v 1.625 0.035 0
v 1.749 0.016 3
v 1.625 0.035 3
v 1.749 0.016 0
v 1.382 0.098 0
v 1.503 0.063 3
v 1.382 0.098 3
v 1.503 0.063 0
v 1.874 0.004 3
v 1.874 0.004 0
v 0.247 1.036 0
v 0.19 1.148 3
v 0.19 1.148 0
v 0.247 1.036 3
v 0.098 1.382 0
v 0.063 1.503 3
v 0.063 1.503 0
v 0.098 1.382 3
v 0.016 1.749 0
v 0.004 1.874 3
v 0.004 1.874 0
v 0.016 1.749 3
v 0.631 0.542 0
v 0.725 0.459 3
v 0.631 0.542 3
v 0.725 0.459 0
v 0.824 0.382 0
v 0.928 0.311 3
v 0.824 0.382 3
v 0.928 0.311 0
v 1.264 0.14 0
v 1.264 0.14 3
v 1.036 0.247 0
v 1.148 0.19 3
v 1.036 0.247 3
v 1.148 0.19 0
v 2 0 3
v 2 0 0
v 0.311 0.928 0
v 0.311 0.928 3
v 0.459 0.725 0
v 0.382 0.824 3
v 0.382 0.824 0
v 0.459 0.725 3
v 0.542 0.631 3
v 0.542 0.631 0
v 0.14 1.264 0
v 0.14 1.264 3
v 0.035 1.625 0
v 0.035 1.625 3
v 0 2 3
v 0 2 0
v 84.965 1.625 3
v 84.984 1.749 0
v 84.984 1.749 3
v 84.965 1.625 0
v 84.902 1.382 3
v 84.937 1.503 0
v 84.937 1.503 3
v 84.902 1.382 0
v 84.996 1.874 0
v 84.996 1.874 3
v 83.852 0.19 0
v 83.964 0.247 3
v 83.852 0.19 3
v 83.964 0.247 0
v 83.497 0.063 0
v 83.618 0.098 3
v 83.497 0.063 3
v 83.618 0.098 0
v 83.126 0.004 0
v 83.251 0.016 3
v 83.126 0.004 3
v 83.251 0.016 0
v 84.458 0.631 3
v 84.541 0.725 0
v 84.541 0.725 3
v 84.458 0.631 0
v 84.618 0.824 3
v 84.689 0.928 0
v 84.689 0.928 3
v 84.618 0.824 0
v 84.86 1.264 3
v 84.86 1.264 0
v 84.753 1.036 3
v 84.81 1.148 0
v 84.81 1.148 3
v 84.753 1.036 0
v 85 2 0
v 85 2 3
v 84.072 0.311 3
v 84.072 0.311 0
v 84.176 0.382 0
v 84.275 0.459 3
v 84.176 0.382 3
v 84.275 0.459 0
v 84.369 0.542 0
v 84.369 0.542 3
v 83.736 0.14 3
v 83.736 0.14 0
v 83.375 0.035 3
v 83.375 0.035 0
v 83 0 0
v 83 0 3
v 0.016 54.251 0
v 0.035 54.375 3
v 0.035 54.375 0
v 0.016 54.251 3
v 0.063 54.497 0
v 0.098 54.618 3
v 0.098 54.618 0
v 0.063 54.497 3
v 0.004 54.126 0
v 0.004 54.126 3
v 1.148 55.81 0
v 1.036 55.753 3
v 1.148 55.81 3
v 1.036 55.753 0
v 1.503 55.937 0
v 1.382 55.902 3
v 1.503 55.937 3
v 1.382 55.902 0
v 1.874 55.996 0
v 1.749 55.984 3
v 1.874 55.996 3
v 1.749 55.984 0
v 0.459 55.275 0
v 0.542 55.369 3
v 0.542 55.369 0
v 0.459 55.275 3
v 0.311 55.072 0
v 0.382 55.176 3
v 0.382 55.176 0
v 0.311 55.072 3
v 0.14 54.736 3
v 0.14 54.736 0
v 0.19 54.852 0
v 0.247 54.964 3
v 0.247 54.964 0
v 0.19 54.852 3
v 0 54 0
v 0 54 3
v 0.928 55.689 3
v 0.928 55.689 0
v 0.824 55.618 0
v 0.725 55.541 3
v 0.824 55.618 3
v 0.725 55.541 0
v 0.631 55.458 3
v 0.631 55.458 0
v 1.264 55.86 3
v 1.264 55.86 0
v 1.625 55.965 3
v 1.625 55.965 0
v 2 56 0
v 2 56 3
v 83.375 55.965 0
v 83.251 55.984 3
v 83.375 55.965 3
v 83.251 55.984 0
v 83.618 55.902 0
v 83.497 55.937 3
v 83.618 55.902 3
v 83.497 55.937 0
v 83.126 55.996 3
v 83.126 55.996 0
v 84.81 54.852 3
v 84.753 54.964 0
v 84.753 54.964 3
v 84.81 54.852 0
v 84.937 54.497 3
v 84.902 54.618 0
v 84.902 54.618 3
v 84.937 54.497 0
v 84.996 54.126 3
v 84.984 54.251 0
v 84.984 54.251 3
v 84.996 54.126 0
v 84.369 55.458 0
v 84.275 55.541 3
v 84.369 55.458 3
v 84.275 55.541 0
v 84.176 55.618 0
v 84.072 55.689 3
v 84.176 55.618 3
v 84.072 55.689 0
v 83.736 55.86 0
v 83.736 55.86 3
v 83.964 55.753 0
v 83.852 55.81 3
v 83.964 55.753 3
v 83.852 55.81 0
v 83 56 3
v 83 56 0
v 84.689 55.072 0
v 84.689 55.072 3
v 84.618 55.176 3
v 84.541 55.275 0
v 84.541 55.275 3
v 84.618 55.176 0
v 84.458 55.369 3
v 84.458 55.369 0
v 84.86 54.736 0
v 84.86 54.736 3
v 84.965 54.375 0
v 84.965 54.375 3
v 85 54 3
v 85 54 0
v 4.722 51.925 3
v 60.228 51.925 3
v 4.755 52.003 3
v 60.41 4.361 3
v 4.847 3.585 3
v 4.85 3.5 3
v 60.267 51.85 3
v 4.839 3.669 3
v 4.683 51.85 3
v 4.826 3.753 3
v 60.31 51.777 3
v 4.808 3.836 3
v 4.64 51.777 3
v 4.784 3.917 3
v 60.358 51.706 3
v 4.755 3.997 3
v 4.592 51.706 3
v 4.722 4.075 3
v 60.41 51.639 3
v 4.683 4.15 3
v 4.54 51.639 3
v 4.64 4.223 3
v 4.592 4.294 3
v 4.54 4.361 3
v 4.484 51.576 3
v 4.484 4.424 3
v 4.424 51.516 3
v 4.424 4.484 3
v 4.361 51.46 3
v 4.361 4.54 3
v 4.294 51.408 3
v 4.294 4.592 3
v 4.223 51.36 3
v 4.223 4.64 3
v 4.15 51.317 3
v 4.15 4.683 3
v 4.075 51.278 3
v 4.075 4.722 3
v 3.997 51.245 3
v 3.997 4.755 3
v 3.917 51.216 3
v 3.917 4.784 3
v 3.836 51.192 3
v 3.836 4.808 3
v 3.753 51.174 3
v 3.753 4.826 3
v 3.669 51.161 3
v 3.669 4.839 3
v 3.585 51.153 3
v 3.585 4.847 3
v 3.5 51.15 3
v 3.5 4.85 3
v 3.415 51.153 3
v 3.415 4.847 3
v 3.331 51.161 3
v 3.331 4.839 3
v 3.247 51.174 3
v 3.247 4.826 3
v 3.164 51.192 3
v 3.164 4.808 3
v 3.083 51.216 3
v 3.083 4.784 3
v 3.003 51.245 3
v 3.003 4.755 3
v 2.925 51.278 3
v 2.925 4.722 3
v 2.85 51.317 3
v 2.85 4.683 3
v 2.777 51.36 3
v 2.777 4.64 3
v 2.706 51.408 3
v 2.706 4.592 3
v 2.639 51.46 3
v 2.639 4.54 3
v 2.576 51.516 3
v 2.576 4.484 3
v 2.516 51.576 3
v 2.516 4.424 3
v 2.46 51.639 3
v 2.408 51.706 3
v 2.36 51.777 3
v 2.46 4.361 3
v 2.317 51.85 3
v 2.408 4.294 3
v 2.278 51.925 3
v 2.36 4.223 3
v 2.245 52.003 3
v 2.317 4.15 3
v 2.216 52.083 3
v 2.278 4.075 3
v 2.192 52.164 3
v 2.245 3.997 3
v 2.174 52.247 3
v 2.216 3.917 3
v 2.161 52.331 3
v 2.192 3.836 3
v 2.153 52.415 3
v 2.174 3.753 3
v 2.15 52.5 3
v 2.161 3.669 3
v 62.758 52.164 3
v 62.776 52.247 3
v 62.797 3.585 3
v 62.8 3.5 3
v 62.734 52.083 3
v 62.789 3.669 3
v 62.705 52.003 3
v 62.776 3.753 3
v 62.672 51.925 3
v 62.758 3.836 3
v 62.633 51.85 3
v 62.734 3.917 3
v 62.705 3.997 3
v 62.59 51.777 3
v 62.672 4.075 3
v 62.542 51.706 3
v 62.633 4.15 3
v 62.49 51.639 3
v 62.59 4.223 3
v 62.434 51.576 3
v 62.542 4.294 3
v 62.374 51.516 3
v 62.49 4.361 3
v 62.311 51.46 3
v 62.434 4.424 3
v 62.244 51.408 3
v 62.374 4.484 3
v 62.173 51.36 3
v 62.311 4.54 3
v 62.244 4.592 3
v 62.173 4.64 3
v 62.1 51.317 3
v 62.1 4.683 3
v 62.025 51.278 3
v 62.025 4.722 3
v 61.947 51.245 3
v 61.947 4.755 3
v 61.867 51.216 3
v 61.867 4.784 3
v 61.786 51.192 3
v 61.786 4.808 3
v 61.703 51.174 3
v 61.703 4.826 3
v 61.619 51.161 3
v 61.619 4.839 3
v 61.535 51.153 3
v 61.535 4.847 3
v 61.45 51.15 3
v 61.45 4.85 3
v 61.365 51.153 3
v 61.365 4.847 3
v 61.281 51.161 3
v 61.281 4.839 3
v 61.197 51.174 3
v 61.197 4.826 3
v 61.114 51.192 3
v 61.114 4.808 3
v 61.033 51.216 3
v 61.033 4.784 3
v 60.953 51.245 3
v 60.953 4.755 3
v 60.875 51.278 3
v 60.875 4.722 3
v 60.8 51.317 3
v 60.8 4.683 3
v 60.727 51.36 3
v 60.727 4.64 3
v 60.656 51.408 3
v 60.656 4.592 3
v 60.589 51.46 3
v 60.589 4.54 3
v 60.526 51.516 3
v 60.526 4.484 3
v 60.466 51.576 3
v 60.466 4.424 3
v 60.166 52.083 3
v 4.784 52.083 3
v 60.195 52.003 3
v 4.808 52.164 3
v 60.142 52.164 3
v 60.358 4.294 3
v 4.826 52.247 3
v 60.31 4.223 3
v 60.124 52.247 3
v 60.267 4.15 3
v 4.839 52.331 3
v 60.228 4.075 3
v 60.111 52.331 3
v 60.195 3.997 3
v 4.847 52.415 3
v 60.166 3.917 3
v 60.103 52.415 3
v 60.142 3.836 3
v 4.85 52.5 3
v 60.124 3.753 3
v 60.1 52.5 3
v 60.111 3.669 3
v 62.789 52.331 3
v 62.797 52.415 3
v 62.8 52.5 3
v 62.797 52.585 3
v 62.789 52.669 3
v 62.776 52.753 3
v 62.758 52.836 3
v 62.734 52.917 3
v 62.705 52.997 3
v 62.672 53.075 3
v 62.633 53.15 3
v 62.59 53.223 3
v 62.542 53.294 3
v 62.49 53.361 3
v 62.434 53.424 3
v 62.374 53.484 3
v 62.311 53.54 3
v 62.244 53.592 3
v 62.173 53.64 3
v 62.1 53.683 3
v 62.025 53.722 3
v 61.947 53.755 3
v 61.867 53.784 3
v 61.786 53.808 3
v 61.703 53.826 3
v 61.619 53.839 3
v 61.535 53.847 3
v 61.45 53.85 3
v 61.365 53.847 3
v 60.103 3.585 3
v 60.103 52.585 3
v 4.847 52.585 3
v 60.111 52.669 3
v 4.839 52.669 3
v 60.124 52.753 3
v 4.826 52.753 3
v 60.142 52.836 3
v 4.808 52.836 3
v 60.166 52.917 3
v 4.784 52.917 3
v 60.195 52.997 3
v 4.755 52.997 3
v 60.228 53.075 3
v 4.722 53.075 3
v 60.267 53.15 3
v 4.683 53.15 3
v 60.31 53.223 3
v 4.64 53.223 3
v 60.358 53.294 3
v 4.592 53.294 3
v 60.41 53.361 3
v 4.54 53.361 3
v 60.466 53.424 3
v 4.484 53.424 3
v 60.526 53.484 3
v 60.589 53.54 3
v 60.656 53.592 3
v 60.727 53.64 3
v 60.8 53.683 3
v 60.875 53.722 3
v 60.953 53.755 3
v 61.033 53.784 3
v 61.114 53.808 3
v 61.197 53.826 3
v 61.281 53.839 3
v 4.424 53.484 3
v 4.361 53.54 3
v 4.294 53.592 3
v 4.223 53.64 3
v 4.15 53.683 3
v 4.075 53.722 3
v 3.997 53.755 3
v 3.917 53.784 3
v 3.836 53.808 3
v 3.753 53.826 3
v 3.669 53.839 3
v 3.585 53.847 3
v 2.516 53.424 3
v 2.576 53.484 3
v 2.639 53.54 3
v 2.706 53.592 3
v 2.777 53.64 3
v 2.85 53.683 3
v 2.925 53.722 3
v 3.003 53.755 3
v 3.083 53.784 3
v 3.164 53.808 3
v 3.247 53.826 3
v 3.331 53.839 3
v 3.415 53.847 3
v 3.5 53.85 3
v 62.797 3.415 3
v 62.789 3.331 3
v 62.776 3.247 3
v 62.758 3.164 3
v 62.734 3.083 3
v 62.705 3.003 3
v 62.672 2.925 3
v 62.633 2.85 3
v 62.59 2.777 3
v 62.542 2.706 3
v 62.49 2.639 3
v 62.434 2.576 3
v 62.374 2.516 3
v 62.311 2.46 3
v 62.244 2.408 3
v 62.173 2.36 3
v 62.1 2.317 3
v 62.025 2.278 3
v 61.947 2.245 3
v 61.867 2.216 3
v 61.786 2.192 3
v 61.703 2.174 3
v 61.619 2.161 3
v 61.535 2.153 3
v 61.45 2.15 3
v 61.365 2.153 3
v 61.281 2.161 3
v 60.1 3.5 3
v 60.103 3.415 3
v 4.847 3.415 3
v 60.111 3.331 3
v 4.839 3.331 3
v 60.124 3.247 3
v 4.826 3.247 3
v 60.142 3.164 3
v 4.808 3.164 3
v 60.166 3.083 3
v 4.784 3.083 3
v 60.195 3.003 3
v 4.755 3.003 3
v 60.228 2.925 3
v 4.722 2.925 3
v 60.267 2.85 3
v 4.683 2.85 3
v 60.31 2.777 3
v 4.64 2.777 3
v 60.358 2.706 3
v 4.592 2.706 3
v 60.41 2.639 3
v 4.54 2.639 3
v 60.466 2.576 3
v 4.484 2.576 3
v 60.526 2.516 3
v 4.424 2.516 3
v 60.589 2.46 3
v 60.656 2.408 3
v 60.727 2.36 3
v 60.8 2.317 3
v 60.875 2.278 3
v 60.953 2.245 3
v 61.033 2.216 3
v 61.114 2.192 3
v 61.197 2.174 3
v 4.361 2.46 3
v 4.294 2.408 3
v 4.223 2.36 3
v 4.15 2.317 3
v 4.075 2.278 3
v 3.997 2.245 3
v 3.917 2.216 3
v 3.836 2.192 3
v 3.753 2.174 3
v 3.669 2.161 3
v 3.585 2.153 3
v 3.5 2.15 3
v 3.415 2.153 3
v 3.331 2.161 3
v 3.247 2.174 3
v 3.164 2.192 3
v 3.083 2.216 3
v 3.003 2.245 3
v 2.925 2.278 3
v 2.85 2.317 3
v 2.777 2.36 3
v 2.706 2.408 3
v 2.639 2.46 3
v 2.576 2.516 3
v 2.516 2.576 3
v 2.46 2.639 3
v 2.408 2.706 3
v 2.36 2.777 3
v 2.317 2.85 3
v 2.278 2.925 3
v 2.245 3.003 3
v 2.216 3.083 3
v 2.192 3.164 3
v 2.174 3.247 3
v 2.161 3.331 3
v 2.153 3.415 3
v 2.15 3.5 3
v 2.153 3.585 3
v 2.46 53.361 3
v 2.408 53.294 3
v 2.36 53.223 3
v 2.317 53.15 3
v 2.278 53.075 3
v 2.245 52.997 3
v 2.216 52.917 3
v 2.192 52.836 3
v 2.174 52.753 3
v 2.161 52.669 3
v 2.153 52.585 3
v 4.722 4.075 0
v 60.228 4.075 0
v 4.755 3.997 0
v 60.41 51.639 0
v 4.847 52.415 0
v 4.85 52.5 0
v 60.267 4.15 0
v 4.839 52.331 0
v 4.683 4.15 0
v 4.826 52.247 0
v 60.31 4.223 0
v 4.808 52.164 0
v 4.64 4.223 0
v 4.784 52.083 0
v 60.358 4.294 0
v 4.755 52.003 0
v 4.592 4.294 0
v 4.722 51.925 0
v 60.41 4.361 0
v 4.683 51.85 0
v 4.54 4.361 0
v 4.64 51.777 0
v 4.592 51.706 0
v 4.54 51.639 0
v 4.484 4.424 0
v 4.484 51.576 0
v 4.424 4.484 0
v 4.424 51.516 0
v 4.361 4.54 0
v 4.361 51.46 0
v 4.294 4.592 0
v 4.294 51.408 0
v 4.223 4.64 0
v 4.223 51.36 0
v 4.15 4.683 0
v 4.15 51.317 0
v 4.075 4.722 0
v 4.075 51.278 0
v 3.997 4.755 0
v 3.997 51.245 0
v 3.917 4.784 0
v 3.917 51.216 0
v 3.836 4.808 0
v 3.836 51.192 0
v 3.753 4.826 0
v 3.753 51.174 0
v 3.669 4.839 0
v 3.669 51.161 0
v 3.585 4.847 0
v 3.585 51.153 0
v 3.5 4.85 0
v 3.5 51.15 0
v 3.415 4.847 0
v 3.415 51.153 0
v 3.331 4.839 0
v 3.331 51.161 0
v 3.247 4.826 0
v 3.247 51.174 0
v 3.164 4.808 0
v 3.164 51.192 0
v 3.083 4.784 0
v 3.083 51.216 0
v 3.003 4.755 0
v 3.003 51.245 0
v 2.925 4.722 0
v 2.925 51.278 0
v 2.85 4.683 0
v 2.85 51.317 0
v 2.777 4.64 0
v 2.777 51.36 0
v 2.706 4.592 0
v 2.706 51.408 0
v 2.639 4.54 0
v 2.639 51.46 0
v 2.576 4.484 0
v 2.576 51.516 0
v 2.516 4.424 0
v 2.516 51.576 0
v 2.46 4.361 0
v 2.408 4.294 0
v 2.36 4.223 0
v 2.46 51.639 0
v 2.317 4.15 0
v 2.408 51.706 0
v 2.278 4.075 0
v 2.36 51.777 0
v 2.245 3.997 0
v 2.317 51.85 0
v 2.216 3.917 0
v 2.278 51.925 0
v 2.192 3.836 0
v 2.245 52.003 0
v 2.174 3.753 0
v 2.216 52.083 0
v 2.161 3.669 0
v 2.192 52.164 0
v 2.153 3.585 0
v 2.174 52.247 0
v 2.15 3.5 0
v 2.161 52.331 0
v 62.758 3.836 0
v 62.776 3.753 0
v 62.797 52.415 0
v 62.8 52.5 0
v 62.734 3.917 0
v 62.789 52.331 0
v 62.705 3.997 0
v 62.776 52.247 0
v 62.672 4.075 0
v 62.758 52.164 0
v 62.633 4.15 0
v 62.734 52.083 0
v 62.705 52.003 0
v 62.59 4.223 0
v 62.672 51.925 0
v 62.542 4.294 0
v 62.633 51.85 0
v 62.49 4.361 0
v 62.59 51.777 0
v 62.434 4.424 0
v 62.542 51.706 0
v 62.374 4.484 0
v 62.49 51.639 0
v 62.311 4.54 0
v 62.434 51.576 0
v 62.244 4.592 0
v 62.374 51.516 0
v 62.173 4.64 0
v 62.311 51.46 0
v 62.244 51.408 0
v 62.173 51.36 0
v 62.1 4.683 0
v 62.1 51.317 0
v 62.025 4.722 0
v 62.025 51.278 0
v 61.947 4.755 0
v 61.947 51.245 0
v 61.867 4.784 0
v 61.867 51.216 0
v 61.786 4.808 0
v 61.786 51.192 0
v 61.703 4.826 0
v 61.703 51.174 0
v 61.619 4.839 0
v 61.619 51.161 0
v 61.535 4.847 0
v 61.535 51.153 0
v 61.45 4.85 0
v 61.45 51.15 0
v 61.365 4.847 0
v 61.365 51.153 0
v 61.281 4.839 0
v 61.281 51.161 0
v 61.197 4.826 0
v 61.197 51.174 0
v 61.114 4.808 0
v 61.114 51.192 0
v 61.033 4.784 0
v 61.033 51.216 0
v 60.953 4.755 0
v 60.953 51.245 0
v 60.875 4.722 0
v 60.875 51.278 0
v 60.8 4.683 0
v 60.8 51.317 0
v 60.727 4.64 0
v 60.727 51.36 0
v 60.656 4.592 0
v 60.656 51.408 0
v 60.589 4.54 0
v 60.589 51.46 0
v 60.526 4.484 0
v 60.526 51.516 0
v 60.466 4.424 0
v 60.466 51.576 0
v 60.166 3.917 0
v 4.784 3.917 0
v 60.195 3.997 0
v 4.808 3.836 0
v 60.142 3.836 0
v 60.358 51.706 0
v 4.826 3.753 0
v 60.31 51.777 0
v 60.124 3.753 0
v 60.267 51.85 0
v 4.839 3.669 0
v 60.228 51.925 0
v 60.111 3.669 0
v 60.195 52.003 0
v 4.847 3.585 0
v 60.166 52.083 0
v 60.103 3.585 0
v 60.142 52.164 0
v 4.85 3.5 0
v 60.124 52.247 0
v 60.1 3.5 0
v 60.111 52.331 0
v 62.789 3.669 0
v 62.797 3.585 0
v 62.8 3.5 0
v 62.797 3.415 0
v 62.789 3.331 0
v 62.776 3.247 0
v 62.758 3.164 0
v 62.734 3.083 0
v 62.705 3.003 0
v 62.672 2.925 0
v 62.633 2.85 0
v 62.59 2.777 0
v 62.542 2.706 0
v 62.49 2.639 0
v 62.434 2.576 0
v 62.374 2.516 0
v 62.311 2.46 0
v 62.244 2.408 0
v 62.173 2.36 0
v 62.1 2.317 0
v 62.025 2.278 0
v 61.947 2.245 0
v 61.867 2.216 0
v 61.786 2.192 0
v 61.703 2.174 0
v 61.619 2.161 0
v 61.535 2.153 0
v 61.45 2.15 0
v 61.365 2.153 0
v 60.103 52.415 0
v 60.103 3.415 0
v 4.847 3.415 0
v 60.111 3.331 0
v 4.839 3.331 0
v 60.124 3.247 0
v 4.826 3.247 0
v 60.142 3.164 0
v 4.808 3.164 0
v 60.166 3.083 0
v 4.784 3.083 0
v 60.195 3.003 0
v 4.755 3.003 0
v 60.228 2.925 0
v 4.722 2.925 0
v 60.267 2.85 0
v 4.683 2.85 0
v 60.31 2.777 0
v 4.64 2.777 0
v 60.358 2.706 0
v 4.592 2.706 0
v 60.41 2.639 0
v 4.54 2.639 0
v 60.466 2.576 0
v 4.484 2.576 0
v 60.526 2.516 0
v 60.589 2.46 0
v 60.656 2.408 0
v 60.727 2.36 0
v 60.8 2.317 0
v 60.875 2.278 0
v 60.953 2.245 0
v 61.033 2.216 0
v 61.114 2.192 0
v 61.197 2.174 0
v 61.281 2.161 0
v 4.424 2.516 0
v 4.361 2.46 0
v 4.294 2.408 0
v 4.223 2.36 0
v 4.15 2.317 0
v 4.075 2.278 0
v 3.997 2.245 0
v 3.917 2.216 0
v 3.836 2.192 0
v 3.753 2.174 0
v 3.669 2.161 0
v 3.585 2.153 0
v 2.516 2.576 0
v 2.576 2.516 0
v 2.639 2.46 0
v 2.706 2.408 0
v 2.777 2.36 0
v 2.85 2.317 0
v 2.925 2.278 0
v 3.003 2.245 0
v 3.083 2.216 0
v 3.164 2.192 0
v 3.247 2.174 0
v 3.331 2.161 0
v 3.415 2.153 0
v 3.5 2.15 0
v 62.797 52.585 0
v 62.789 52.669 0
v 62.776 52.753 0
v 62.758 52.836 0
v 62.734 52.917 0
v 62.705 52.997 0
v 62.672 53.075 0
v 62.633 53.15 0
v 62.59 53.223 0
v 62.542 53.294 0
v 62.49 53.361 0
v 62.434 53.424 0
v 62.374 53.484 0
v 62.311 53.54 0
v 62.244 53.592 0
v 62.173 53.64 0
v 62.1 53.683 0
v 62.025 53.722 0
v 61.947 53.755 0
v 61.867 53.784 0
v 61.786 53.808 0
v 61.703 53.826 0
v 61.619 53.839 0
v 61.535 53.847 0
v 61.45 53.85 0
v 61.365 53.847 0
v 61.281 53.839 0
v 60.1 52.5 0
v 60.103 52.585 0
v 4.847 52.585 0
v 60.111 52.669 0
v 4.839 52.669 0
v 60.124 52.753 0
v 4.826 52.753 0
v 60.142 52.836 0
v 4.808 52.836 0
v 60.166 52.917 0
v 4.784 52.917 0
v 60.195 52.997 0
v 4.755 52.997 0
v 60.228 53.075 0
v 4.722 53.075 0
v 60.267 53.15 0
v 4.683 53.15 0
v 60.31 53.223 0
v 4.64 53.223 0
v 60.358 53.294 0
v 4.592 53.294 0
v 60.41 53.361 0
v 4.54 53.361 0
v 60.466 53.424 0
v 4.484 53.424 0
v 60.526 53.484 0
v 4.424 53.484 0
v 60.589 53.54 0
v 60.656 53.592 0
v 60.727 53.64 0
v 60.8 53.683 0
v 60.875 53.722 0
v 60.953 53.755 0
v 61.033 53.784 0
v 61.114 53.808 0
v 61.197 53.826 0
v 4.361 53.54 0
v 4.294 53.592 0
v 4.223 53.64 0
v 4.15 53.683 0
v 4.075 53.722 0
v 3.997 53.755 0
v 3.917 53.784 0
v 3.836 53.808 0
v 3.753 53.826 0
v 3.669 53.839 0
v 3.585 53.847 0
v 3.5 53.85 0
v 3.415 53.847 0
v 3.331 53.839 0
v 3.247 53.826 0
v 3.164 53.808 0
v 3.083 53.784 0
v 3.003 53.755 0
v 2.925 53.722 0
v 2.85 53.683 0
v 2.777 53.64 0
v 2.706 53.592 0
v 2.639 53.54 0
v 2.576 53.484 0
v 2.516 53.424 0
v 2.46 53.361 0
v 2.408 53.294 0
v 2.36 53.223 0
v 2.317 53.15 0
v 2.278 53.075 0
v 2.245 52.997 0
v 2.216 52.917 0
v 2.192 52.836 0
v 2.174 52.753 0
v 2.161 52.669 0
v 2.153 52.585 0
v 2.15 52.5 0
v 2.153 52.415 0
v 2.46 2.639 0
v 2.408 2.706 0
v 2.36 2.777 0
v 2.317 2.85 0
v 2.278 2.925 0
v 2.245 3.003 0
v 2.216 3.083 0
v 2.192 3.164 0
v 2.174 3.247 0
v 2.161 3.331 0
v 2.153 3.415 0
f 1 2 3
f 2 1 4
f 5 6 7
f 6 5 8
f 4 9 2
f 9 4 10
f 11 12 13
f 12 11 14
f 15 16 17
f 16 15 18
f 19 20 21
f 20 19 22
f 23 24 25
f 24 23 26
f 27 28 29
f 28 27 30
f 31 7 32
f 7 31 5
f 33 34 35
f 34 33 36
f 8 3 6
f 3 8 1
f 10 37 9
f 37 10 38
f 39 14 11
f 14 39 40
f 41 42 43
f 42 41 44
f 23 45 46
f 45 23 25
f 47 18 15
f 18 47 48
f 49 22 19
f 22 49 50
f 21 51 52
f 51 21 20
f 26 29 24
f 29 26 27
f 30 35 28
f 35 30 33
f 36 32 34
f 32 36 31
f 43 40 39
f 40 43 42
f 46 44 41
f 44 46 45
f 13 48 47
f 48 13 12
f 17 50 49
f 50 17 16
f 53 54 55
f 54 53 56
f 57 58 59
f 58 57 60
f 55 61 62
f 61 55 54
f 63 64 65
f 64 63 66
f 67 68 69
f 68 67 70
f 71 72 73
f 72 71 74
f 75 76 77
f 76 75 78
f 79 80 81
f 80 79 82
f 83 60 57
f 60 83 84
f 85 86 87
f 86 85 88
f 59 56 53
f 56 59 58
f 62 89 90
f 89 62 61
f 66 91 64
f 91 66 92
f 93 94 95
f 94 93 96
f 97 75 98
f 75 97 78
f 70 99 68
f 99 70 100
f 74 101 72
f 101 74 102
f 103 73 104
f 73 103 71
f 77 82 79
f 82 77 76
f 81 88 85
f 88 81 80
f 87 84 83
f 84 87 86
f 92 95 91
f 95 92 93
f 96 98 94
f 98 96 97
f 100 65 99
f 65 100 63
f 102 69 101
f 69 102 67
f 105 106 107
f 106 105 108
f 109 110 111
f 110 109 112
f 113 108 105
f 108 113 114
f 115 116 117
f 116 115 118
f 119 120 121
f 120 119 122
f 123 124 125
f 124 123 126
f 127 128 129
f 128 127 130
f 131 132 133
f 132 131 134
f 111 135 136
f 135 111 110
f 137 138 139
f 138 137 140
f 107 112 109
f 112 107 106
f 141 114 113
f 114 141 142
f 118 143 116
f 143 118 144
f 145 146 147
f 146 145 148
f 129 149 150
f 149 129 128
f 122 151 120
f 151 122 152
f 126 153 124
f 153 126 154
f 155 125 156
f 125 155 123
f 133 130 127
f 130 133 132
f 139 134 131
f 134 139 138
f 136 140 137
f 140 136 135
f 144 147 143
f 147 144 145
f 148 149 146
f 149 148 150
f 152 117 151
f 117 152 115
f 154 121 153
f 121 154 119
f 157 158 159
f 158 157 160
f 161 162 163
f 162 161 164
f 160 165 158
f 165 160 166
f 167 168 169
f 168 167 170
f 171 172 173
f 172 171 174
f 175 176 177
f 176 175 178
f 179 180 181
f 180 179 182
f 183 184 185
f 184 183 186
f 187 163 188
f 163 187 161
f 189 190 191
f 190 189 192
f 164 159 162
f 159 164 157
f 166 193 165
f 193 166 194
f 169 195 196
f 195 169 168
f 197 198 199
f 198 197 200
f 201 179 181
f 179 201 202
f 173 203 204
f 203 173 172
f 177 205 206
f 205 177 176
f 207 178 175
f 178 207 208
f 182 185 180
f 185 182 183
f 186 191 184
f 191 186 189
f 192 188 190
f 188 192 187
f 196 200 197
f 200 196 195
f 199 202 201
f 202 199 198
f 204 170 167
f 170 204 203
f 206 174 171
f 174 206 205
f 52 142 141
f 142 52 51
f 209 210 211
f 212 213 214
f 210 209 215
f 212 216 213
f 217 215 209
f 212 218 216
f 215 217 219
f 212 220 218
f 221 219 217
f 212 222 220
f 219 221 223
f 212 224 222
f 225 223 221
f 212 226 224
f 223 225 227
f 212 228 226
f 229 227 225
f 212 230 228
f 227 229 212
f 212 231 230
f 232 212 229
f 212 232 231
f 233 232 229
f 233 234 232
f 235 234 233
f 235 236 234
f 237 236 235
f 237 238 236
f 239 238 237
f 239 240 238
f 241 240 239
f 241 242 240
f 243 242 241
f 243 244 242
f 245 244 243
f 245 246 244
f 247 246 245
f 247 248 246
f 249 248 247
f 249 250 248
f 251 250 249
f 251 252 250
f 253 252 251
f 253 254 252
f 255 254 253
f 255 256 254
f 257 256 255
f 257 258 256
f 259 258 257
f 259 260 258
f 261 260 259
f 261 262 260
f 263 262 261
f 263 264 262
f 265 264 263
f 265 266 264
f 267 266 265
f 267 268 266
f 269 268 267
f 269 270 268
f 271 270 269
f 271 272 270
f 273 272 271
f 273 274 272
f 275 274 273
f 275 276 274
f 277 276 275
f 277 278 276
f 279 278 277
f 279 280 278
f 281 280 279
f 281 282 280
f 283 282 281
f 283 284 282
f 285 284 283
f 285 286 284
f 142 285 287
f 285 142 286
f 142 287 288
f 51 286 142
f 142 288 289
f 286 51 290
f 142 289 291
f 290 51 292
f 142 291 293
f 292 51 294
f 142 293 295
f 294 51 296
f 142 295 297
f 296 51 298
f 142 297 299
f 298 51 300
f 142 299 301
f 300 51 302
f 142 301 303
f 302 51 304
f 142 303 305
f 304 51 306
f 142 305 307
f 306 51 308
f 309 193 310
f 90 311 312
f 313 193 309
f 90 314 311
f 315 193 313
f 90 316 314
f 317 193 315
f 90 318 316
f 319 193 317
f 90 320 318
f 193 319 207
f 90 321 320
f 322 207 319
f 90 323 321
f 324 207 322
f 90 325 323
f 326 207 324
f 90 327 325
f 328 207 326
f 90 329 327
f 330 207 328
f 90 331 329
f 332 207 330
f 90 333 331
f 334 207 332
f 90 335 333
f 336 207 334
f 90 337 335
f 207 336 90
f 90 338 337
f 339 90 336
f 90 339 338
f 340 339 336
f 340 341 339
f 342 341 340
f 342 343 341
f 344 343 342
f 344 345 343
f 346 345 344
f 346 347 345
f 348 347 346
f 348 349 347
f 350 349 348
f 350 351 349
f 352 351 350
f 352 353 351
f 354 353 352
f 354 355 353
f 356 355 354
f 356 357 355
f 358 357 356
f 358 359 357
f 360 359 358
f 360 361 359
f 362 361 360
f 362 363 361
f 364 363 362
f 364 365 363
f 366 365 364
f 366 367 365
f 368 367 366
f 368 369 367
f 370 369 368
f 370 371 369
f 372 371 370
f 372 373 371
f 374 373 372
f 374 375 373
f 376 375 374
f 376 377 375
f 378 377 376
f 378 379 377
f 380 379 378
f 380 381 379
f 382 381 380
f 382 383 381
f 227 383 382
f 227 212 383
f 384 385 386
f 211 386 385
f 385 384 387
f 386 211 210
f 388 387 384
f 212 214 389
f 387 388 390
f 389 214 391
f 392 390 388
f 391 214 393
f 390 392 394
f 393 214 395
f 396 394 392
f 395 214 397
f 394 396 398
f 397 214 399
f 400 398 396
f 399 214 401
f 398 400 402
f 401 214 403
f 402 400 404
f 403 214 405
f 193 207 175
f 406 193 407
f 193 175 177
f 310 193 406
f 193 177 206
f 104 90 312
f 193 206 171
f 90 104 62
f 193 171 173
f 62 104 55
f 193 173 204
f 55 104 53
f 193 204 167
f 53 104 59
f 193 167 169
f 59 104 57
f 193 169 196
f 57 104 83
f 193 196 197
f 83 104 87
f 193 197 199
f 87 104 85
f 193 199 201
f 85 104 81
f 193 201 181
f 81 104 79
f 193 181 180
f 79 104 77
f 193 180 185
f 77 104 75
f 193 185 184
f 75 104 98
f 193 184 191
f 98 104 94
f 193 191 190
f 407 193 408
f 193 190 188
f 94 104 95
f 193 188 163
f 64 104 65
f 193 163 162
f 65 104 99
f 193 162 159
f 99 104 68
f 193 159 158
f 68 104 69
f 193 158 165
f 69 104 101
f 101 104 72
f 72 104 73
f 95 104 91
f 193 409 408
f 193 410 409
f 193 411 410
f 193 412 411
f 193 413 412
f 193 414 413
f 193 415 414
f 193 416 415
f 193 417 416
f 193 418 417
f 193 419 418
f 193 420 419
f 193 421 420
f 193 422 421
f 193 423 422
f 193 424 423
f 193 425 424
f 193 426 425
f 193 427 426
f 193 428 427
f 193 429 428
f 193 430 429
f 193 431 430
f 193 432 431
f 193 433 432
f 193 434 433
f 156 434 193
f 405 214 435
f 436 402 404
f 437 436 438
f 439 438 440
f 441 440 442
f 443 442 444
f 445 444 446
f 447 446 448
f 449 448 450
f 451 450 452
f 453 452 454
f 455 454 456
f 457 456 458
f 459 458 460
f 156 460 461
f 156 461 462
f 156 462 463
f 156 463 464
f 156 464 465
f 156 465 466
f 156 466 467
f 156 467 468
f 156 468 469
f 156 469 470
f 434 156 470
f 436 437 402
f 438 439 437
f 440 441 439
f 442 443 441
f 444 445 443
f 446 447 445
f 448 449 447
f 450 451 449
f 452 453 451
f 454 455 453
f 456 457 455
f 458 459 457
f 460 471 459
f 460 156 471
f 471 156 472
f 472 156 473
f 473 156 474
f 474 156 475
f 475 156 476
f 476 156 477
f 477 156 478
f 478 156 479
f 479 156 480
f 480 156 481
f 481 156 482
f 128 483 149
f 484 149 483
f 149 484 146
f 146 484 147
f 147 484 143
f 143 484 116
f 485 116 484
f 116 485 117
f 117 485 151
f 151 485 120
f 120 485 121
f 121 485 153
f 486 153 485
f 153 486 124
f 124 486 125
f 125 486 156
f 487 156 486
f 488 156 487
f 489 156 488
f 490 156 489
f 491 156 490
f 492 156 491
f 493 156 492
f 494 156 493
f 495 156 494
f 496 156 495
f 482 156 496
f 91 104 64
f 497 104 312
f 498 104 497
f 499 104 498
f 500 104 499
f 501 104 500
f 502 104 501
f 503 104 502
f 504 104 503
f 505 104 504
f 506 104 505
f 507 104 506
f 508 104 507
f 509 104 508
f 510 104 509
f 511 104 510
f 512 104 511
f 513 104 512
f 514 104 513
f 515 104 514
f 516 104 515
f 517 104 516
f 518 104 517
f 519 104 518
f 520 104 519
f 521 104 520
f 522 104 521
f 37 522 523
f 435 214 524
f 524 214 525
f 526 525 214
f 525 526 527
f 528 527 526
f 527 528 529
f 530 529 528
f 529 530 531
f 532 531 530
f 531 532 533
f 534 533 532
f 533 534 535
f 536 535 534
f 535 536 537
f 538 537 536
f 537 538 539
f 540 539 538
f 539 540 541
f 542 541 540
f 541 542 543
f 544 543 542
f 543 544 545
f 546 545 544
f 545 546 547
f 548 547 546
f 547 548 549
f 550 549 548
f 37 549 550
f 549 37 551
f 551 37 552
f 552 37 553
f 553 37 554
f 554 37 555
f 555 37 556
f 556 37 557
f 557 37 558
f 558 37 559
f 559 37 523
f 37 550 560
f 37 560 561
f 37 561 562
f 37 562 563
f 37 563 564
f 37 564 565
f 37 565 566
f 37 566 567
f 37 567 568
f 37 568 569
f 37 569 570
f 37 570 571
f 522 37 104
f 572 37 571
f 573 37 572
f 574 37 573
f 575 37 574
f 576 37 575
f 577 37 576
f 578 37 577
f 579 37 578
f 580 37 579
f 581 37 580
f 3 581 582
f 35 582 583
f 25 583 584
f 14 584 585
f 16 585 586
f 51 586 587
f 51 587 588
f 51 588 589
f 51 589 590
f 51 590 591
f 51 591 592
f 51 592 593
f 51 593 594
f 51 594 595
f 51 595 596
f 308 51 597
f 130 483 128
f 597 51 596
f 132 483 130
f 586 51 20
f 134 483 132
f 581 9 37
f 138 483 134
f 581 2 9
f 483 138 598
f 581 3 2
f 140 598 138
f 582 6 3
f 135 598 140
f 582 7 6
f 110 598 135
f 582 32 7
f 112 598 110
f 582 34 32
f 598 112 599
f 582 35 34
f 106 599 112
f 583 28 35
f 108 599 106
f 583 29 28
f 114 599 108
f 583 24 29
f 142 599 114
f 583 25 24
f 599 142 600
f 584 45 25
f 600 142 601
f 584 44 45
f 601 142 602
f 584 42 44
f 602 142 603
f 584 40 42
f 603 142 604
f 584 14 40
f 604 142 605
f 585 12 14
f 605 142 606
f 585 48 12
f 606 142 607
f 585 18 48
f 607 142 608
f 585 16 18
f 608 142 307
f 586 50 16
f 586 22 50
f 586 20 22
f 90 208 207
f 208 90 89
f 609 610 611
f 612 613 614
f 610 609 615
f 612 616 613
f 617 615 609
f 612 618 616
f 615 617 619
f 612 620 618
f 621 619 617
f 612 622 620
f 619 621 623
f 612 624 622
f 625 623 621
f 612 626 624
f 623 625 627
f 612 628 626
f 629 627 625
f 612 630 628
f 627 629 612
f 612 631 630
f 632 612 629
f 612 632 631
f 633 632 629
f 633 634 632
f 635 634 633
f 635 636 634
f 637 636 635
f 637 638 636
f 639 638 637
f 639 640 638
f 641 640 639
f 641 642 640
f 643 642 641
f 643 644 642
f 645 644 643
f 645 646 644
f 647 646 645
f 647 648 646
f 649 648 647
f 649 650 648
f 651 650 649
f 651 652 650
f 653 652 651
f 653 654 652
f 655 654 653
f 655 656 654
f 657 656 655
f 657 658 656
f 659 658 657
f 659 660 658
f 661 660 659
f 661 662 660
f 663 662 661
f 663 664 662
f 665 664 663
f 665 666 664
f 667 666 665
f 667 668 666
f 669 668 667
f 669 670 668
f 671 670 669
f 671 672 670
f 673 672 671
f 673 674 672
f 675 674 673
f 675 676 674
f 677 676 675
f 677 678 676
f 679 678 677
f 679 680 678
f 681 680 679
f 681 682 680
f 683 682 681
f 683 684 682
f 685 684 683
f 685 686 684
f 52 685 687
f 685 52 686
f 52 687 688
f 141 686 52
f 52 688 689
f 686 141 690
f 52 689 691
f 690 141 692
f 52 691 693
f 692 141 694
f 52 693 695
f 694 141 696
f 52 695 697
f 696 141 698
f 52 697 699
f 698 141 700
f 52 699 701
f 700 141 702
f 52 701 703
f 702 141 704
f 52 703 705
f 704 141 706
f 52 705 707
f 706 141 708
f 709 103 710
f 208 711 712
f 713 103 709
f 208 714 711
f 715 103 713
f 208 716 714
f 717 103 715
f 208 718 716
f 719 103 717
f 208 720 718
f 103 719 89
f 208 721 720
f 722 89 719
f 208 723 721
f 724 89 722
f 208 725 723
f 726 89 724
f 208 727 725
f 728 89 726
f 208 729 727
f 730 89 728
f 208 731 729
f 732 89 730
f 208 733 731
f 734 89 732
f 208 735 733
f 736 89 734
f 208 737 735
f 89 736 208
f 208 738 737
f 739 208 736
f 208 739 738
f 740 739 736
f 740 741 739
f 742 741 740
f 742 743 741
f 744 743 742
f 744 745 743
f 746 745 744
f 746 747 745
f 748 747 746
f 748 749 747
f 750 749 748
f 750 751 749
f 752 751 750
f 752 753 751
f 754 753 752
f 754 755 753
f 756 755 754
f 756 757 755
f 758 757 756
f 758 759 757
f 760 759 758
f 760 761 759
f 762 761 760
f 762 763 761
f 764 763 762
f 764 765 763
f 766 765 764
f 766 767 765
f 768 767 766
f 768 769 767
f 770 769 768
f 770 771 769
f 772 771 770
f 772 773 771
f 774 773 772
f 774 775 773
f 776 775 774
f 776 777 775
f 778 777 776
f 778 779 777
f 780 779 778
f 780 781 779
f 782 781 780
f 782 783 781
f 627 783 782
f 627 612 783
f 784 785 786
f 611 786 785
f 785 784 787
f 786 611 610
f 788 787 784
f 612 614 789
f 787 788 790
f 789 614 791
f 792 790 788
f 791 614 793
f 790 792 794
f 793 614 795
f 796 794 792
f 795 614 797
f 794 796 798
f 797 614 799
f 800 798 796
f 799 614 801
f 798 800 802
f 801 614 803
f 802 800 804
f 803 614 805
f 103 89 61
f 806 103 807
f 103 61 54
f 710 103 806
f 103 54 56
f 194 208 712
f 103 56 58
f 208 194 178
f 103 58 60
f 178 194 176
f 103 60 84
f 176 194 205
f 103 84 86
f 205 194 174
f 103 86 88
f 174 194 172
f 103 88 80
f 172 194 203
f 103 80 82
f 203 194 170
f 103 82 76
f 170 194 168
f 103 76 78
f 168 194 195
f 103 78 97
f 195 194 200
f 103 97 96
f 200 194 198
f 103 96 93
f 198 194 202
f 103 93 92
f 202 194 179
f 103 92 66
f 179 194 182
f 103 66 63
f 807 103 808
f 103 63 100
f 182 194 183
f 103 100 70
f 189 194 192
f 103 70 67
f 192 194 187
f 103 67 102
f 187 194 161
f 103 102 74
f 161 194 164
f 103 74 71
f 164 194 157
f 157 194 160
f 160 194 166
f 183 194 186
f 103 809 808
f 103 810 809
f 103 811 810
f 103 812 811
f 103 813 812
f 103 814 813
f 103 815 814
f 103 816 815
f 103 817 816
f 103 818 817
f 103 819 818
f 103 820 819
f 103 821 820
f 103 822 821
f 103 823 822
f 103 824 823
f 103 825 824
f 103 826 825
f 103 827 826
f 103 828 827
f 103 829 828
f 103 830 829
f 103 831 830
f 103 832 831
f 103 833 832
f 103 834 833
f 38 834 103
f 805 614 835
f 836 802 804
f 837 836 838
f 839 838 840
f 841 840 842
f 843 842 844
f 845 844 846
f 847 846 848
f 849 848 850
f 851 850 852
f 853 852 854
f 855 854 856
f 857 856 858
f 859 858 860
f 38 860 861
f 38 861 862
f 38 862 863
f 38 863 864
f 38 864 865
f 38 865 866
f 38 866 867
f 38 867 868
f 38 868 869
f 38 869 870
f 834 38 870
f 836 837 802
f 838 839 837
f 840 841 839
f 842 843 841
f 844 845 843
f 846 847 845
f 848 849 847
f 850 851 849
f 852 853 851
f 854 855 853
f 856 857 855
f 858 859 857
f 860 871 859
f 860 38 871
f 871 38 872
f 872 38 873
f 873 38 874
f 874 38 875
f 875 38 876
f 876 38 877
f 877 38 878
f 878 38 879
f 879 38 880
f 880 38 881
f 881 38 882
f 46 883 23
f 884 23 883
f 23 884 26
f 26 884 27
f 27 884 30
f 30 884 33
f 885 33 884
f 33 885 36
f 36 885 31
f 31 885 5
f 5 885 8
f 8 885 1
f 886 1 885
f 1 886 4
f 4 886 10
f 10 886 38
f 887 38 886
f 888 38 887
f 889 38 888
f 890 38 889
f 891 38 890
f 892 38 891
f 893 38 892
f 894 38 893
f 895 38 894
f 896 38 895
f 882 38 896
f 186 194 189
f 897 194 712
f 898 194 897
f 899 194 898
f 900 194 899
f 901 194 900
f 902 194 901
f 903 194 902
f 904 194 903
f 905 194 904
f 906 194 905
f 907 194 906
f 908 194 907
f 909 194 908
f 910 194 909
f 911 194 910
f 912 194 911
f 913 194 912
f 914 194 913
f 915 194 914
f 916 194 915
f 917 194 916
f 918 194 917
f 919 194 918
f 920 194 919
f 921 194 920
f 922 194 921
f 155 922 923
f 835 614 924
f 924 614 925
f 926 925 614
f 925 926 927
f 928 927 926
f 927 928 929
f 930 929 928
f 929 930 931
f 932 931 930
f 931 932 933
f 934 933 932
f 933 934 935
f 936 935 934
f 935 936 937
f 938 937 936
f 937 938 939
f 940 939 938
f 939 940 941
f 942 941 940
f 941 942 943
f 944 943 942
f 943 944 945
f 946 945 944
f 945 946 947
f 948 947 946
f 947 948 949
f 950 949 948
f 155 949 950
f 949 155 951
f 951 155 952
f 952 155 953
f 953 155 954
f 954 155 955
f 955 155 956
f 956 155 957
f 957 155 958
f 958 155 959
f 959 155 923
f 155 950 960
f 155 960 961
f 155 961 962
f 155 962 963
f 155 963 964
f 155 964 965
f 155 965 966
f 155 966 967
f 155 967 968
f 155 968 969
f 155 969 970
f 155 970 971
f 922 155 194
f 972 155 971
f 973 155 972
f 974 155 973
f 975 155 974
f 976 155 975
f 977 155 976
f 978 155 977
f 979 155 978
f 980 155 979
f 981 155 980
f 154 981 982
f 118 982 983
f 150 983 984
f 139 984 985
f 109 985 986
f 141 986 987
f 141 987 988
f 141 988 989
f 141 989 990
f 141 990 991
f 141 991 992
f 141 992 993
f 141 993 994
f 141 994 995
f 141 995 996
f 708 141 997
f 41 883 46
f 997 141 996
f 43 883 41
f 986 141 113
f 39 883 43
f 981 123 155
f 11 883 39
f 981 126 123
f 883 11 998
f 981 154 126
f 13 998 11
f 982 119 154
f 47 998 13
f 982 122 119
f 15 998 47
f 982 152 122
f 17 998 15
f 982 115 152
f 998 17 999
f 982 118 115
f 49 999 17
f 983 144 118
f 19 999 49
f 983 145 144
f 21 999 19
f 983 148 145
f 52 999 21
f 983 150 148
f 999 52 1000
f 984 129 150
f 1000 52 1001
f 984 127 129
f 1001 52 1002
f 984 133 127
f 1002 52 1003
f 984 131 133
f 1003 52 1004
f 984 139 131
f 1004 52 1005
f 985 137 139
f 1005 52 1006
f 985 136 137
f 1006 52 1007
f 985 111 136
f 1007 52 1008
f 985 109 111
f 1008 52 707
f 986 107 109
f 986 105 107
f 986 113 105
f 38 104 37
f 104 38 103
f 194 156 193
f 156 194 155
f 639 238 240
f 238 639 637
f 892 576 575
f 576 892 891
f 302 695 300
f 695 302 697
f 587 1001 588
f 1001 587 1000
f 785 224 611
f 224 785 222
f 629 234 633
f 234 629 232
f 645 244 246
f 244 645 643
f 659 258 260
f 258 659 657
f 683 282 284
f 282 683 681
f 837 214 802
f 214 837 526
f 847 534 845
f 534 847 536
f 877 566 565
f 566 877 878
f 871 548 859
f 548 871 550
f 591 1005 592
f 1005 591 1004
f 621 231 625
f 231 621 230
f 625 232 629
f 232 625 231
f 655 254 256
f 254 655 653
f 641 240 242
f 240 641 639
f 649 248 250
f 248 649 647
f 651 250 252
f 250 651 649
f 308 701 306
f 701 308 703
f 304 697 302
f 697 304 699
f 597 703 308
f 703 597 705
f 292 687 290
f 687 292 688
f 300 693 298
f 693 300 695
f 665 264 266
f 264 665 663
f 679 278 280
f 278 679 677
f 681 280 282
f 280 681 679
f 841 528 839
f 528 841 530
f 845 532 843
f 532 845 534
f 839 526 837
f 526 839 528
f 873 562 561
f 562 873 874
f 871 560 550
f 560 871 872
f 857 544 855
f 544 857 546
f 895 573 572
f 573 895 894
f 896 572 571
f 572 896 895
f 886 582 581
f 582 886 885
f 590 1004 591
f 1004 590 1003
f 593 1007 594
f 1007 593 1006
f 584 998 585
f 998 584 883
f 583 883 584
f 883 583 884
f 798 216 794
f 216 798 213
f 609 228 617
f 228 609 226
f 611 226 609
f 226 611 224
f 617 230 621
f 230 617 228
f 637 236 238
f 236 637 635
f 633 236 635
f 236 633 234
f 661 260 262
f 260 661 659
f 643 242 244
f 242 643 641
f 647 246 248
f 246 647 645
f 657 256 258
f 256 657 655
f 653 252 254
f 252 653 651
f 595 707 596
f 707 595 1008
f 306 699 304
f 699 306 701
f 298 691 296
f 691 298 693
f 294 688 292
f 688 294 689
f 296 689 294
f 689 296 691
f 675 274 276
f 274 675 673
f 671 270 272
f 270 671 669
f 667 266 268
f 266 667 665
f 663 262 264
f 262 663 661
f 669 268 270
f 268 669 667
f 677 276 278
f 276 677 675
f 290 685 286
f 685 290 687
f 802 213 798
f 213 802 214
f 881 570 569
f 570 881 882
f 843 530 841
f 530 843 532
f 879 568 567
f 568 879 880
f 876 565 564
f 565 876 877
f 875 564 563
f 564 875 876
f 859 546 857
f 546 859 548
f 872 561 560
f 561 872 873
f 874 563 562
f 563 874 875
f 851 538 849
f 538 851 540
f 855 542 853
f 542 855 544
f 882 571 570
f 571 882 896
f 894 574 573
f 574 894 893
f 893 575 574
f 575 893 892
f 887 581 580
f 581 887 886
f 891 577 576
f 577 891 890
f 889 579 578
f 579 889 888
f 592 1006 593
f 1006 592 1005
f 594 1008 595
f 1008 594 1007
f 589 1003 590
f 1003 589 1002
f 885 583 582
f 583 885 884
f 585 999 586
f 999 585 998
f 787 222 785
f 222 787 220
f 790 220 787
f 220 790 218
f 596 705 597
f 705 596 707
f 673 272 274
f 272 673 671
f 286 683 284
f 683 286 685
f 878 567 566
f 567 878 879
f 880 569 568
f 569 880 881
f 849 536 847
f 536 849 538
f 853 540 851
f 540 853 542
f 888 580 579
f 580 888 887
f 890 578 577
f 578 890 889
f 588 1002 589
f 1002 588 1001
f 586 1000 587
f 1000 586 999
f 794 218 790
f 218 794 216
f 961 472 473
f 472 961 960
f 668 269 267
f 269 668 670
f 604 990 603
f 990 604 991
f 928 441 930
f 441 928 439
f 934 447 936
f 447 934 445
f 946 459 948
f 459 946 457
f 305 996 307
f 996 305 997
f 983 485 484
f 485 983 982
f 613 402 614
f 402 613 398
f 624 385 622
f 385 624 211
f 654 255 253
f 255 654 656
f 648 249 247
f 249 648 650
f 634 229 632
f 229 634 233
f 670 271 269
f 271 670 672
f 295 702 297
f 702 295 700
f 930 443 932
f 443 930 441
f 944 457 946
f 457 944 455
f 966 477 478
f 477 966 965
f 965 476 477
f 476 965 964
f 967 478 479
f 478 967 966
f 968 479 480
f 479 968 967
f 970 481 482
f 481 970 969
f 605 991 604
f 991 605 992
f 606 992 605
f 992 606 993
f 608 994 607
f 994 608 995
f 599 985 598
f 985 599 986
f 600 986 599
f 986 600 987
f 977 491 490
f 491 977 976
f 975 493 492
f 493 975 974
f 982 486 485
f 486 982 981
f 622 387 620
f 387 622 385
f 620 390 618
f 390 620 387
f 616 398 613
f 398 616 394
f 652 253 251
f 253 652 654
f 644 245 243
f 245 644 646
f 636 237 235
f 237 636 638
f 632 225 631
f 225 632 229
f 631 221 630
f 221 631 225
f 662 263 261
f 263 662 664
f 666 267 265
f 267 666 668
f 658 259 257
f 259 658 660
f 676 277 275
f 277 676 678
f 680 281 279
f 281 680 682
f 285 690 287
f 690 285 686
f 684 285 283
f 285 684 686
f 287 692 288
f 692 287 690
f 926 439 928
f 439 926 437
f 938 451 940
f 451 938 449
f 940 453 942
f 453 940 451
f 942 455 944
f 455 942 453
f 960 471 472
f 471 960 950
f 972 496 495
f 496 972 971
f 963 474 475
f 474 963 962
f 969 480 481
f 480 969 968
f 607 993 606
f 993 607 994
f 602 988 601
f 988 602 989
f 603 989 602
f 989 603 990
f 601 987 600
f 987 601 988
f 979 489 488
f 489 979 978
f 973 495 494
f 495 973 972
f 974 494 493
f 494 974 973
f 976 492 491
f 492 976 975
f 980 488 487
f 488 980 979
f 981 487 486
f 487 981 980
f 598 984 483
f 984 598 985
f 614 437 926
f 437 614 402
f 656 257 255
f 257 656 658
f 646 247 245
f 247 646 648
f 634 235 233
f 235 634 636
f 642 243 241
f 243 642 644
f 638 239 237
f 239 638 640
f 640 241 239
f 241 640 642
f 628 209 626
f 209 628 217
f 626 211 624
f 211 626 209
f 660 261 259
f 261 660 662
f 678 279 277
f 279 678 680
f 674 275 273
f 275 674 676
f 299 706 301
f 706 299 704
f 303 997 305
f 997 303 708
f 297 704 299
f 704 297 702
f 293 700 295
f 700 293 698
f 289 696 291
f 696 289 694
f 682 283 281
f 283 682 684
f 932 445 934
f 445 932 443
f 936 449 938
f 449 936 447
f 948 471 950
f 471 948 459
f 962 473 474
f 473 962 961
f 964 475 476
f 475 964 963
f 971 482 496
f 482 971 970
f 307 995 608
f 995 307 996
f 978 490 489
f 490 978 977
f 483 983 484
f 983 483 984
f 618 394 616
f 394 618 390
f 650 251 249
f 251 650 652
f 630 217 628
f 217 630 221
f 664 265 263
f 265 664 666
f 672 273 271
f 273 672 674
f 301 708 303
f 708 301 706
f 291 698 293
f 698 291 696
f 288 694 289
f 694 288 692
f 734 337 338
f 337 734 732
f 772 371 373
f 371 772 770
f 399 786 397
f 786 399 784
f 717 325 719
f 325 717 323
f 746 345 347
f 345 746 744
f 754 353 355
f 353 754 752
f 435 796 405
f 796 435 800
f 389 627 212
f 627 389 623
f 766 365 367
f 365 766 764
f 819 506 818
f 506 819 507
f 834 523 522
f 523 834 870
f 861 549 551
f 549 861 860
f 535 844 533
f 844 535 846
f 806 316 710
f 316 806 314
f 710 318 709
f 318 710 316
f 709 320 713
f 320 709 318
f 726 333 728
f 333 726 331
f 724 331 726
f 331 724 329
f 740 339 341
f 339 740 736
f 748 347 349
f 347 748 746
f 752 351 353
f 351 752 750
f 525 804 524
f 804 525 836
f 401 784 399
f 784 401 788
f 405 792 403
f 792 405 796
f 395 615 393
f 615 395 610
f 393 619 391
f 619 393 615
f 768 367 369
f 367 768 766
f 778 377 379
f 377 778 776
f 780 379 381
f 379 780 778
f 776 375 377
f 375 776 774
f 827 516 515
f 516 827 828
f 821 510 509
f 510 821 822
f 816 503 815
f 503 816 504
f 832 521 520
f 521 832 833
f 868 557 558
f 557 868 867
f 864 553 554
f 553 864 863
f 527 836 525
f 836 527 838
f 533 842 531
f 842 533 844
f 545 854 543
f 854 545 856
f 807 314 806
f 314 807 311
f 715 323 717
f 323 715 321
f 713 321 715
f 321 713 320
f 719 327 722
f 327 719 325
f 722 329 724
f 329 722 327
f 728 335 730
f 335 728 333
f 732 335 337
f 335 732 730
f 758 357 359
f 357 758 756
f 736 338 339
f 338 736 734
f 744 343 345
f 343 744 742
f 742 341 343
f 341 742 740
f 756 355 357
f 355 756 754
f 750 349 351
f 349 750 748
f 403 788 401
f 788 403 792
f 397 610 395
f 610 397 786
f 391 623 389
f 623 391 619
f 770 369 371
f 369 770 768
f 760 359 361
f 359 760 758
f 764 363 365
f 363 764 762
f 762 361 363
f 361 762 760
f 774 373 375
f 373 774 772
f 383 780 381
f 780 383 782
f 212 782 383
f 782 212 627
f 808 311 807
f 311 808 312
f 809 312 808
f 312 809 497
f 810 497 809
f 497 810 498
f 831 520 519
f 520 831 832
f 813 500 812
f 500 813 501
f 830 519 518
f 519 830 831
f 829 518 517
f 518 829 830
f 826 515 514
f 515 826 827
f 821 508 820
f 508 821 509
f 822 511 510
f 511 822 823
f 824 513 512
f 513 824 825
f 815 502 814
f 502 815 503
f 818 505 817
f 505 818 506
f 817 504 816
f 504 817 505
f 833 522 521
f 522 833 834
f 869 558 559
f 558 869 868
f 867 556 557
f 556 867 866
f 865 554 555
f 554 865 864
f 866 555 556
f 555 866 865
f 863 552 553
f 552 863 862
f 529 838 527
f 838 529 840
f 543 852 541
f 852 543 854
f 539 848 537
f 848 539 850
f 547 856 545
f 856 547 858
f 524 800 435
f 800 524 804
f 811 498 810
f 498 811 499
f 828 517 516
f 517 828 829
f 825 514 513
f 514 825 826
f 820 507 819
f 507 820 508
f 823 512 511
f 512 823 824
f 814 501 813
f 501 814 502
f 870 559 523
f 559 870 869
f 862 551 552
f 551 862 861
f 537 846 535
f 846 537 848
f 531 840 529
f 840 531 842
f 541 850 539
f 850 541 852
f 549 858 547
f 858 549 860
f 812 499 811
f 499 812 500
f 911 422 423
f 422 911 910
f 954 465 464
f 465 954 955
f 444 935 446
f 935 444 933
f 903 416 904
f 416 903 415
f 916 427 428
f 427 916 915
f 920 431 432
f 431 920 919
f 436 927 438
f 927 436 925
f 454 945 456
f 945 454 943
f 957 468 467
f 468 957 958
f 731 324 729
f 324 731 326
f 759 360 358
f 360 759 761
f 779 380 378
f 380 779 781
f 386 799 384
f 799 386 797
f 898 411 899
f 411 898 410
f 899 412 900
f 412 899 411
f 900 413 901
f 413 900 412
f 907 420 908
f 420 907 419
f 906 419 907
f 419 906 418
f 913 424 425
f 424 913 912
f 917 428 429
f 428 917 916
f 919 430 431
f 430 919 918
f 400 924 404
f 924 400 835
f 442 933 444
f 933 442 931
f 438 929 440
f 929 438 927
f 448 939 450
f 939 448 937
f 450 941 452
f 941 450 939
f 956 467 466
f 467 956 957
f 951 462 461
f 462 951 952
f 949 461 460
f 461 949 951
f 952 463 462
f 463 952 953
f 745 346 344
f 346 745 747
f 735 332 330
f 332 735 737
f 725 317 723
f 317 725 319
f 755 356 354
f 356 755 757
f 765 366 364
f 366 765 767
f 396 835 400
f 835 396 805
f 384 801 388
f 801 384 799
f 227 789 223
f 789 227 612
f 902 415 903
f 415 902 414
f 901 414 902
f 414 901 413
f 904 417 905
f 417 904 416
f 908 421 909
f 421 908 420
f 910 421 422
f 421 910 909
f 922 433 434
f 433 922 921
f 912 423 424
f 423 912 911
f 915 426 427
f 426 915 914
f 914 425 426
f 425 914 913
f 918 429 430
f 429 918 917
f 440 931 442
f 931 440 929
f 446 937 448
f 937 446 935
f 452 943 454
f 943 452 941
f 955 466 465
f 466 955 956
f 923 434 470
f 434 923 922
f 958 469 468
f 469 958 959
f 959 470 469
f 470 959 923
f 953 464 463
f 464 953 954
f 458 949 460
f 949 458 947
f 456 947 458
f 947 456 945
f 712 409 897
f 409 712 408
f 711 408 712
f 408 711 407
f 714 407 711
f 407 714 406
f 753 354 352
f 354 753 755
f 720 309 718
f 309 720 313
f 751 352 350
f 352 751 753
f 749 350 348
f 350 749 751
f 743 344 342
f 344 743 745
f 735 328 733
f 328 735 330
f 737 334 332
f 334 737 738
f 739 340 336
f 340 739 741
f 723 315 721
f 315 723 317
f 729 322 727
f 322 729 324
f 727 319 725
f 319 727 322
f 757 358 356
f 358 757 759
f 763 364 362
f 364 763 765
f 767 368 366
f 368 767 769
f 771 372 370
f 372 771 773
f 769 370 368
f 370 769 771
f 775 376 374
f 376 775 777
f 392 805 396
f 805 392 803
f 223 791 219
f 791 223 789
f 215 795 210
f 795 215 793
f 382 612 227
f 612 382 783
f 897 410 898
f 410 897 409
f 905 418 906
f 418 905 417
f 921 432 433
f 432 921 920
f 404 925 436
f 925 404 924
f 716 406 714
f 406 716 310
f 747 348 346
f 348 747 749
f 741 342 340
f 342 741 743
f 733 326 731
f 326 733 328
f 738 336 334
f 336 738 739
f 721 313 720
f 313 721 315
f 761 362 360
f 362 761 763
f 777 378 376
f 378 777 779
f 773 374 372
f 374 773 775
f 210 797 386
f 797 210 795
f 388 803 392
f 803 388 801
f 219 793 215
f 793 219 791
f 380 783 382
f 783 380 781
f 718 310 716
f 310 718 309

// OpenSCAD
$fn=100;
difference() {
cube(
  size=[85,56,3],
  center=false
);
// SW
translate([
    2.7/2+2.15,
    2.7/2+2.15,
    -5
    ])
cylinder(
  h=10,
  r=2.7/2,
  center=false
);
// NW
translate([
    2.7/2+2.15,
    56-2.7/2-2.15,
    -5
    ])
cylinder(
  h=10,
  r=2.7/2,
  center=false
);
// SE
translate([
    2.7/2+2.15+57.95,
    2.7/2+2.15,
    -5
    ])
cylinder(
  h=10,
  r=2.7/2,
  center=false
);
// NE
translate([
    2.7/2+2.15+57.95,
    56-2.7/2-2.15,
    -5
    ])
cylinder(
  h=10,
  r=2.7/2,
  center=false
);
difference() {
    cube([4,4,7],center=true);
    translate([2,2,-4])
    cylinder(h=8,r=2);
}
translate([85,0,0])
rotate(90,[0,0,1])
difference() {
    cube([4,4,7],center=true);
    translate([2,2,-4])
    cylinder(h=8,r=2);
}
translate([0,56,0])
rotate(-90,[0,0,1])
difference() {
    cube([4,4,7],center=true);
    translate([2,2,-4])
    cylinder(h=8,r=2);
}
translate([85,56,0])
rotate(180,[0,0,1])
difference() {
    cube([4,4,7],center=true);
    translate([2,2,-4])
    cylinder(h=8,r=2);
}
}
